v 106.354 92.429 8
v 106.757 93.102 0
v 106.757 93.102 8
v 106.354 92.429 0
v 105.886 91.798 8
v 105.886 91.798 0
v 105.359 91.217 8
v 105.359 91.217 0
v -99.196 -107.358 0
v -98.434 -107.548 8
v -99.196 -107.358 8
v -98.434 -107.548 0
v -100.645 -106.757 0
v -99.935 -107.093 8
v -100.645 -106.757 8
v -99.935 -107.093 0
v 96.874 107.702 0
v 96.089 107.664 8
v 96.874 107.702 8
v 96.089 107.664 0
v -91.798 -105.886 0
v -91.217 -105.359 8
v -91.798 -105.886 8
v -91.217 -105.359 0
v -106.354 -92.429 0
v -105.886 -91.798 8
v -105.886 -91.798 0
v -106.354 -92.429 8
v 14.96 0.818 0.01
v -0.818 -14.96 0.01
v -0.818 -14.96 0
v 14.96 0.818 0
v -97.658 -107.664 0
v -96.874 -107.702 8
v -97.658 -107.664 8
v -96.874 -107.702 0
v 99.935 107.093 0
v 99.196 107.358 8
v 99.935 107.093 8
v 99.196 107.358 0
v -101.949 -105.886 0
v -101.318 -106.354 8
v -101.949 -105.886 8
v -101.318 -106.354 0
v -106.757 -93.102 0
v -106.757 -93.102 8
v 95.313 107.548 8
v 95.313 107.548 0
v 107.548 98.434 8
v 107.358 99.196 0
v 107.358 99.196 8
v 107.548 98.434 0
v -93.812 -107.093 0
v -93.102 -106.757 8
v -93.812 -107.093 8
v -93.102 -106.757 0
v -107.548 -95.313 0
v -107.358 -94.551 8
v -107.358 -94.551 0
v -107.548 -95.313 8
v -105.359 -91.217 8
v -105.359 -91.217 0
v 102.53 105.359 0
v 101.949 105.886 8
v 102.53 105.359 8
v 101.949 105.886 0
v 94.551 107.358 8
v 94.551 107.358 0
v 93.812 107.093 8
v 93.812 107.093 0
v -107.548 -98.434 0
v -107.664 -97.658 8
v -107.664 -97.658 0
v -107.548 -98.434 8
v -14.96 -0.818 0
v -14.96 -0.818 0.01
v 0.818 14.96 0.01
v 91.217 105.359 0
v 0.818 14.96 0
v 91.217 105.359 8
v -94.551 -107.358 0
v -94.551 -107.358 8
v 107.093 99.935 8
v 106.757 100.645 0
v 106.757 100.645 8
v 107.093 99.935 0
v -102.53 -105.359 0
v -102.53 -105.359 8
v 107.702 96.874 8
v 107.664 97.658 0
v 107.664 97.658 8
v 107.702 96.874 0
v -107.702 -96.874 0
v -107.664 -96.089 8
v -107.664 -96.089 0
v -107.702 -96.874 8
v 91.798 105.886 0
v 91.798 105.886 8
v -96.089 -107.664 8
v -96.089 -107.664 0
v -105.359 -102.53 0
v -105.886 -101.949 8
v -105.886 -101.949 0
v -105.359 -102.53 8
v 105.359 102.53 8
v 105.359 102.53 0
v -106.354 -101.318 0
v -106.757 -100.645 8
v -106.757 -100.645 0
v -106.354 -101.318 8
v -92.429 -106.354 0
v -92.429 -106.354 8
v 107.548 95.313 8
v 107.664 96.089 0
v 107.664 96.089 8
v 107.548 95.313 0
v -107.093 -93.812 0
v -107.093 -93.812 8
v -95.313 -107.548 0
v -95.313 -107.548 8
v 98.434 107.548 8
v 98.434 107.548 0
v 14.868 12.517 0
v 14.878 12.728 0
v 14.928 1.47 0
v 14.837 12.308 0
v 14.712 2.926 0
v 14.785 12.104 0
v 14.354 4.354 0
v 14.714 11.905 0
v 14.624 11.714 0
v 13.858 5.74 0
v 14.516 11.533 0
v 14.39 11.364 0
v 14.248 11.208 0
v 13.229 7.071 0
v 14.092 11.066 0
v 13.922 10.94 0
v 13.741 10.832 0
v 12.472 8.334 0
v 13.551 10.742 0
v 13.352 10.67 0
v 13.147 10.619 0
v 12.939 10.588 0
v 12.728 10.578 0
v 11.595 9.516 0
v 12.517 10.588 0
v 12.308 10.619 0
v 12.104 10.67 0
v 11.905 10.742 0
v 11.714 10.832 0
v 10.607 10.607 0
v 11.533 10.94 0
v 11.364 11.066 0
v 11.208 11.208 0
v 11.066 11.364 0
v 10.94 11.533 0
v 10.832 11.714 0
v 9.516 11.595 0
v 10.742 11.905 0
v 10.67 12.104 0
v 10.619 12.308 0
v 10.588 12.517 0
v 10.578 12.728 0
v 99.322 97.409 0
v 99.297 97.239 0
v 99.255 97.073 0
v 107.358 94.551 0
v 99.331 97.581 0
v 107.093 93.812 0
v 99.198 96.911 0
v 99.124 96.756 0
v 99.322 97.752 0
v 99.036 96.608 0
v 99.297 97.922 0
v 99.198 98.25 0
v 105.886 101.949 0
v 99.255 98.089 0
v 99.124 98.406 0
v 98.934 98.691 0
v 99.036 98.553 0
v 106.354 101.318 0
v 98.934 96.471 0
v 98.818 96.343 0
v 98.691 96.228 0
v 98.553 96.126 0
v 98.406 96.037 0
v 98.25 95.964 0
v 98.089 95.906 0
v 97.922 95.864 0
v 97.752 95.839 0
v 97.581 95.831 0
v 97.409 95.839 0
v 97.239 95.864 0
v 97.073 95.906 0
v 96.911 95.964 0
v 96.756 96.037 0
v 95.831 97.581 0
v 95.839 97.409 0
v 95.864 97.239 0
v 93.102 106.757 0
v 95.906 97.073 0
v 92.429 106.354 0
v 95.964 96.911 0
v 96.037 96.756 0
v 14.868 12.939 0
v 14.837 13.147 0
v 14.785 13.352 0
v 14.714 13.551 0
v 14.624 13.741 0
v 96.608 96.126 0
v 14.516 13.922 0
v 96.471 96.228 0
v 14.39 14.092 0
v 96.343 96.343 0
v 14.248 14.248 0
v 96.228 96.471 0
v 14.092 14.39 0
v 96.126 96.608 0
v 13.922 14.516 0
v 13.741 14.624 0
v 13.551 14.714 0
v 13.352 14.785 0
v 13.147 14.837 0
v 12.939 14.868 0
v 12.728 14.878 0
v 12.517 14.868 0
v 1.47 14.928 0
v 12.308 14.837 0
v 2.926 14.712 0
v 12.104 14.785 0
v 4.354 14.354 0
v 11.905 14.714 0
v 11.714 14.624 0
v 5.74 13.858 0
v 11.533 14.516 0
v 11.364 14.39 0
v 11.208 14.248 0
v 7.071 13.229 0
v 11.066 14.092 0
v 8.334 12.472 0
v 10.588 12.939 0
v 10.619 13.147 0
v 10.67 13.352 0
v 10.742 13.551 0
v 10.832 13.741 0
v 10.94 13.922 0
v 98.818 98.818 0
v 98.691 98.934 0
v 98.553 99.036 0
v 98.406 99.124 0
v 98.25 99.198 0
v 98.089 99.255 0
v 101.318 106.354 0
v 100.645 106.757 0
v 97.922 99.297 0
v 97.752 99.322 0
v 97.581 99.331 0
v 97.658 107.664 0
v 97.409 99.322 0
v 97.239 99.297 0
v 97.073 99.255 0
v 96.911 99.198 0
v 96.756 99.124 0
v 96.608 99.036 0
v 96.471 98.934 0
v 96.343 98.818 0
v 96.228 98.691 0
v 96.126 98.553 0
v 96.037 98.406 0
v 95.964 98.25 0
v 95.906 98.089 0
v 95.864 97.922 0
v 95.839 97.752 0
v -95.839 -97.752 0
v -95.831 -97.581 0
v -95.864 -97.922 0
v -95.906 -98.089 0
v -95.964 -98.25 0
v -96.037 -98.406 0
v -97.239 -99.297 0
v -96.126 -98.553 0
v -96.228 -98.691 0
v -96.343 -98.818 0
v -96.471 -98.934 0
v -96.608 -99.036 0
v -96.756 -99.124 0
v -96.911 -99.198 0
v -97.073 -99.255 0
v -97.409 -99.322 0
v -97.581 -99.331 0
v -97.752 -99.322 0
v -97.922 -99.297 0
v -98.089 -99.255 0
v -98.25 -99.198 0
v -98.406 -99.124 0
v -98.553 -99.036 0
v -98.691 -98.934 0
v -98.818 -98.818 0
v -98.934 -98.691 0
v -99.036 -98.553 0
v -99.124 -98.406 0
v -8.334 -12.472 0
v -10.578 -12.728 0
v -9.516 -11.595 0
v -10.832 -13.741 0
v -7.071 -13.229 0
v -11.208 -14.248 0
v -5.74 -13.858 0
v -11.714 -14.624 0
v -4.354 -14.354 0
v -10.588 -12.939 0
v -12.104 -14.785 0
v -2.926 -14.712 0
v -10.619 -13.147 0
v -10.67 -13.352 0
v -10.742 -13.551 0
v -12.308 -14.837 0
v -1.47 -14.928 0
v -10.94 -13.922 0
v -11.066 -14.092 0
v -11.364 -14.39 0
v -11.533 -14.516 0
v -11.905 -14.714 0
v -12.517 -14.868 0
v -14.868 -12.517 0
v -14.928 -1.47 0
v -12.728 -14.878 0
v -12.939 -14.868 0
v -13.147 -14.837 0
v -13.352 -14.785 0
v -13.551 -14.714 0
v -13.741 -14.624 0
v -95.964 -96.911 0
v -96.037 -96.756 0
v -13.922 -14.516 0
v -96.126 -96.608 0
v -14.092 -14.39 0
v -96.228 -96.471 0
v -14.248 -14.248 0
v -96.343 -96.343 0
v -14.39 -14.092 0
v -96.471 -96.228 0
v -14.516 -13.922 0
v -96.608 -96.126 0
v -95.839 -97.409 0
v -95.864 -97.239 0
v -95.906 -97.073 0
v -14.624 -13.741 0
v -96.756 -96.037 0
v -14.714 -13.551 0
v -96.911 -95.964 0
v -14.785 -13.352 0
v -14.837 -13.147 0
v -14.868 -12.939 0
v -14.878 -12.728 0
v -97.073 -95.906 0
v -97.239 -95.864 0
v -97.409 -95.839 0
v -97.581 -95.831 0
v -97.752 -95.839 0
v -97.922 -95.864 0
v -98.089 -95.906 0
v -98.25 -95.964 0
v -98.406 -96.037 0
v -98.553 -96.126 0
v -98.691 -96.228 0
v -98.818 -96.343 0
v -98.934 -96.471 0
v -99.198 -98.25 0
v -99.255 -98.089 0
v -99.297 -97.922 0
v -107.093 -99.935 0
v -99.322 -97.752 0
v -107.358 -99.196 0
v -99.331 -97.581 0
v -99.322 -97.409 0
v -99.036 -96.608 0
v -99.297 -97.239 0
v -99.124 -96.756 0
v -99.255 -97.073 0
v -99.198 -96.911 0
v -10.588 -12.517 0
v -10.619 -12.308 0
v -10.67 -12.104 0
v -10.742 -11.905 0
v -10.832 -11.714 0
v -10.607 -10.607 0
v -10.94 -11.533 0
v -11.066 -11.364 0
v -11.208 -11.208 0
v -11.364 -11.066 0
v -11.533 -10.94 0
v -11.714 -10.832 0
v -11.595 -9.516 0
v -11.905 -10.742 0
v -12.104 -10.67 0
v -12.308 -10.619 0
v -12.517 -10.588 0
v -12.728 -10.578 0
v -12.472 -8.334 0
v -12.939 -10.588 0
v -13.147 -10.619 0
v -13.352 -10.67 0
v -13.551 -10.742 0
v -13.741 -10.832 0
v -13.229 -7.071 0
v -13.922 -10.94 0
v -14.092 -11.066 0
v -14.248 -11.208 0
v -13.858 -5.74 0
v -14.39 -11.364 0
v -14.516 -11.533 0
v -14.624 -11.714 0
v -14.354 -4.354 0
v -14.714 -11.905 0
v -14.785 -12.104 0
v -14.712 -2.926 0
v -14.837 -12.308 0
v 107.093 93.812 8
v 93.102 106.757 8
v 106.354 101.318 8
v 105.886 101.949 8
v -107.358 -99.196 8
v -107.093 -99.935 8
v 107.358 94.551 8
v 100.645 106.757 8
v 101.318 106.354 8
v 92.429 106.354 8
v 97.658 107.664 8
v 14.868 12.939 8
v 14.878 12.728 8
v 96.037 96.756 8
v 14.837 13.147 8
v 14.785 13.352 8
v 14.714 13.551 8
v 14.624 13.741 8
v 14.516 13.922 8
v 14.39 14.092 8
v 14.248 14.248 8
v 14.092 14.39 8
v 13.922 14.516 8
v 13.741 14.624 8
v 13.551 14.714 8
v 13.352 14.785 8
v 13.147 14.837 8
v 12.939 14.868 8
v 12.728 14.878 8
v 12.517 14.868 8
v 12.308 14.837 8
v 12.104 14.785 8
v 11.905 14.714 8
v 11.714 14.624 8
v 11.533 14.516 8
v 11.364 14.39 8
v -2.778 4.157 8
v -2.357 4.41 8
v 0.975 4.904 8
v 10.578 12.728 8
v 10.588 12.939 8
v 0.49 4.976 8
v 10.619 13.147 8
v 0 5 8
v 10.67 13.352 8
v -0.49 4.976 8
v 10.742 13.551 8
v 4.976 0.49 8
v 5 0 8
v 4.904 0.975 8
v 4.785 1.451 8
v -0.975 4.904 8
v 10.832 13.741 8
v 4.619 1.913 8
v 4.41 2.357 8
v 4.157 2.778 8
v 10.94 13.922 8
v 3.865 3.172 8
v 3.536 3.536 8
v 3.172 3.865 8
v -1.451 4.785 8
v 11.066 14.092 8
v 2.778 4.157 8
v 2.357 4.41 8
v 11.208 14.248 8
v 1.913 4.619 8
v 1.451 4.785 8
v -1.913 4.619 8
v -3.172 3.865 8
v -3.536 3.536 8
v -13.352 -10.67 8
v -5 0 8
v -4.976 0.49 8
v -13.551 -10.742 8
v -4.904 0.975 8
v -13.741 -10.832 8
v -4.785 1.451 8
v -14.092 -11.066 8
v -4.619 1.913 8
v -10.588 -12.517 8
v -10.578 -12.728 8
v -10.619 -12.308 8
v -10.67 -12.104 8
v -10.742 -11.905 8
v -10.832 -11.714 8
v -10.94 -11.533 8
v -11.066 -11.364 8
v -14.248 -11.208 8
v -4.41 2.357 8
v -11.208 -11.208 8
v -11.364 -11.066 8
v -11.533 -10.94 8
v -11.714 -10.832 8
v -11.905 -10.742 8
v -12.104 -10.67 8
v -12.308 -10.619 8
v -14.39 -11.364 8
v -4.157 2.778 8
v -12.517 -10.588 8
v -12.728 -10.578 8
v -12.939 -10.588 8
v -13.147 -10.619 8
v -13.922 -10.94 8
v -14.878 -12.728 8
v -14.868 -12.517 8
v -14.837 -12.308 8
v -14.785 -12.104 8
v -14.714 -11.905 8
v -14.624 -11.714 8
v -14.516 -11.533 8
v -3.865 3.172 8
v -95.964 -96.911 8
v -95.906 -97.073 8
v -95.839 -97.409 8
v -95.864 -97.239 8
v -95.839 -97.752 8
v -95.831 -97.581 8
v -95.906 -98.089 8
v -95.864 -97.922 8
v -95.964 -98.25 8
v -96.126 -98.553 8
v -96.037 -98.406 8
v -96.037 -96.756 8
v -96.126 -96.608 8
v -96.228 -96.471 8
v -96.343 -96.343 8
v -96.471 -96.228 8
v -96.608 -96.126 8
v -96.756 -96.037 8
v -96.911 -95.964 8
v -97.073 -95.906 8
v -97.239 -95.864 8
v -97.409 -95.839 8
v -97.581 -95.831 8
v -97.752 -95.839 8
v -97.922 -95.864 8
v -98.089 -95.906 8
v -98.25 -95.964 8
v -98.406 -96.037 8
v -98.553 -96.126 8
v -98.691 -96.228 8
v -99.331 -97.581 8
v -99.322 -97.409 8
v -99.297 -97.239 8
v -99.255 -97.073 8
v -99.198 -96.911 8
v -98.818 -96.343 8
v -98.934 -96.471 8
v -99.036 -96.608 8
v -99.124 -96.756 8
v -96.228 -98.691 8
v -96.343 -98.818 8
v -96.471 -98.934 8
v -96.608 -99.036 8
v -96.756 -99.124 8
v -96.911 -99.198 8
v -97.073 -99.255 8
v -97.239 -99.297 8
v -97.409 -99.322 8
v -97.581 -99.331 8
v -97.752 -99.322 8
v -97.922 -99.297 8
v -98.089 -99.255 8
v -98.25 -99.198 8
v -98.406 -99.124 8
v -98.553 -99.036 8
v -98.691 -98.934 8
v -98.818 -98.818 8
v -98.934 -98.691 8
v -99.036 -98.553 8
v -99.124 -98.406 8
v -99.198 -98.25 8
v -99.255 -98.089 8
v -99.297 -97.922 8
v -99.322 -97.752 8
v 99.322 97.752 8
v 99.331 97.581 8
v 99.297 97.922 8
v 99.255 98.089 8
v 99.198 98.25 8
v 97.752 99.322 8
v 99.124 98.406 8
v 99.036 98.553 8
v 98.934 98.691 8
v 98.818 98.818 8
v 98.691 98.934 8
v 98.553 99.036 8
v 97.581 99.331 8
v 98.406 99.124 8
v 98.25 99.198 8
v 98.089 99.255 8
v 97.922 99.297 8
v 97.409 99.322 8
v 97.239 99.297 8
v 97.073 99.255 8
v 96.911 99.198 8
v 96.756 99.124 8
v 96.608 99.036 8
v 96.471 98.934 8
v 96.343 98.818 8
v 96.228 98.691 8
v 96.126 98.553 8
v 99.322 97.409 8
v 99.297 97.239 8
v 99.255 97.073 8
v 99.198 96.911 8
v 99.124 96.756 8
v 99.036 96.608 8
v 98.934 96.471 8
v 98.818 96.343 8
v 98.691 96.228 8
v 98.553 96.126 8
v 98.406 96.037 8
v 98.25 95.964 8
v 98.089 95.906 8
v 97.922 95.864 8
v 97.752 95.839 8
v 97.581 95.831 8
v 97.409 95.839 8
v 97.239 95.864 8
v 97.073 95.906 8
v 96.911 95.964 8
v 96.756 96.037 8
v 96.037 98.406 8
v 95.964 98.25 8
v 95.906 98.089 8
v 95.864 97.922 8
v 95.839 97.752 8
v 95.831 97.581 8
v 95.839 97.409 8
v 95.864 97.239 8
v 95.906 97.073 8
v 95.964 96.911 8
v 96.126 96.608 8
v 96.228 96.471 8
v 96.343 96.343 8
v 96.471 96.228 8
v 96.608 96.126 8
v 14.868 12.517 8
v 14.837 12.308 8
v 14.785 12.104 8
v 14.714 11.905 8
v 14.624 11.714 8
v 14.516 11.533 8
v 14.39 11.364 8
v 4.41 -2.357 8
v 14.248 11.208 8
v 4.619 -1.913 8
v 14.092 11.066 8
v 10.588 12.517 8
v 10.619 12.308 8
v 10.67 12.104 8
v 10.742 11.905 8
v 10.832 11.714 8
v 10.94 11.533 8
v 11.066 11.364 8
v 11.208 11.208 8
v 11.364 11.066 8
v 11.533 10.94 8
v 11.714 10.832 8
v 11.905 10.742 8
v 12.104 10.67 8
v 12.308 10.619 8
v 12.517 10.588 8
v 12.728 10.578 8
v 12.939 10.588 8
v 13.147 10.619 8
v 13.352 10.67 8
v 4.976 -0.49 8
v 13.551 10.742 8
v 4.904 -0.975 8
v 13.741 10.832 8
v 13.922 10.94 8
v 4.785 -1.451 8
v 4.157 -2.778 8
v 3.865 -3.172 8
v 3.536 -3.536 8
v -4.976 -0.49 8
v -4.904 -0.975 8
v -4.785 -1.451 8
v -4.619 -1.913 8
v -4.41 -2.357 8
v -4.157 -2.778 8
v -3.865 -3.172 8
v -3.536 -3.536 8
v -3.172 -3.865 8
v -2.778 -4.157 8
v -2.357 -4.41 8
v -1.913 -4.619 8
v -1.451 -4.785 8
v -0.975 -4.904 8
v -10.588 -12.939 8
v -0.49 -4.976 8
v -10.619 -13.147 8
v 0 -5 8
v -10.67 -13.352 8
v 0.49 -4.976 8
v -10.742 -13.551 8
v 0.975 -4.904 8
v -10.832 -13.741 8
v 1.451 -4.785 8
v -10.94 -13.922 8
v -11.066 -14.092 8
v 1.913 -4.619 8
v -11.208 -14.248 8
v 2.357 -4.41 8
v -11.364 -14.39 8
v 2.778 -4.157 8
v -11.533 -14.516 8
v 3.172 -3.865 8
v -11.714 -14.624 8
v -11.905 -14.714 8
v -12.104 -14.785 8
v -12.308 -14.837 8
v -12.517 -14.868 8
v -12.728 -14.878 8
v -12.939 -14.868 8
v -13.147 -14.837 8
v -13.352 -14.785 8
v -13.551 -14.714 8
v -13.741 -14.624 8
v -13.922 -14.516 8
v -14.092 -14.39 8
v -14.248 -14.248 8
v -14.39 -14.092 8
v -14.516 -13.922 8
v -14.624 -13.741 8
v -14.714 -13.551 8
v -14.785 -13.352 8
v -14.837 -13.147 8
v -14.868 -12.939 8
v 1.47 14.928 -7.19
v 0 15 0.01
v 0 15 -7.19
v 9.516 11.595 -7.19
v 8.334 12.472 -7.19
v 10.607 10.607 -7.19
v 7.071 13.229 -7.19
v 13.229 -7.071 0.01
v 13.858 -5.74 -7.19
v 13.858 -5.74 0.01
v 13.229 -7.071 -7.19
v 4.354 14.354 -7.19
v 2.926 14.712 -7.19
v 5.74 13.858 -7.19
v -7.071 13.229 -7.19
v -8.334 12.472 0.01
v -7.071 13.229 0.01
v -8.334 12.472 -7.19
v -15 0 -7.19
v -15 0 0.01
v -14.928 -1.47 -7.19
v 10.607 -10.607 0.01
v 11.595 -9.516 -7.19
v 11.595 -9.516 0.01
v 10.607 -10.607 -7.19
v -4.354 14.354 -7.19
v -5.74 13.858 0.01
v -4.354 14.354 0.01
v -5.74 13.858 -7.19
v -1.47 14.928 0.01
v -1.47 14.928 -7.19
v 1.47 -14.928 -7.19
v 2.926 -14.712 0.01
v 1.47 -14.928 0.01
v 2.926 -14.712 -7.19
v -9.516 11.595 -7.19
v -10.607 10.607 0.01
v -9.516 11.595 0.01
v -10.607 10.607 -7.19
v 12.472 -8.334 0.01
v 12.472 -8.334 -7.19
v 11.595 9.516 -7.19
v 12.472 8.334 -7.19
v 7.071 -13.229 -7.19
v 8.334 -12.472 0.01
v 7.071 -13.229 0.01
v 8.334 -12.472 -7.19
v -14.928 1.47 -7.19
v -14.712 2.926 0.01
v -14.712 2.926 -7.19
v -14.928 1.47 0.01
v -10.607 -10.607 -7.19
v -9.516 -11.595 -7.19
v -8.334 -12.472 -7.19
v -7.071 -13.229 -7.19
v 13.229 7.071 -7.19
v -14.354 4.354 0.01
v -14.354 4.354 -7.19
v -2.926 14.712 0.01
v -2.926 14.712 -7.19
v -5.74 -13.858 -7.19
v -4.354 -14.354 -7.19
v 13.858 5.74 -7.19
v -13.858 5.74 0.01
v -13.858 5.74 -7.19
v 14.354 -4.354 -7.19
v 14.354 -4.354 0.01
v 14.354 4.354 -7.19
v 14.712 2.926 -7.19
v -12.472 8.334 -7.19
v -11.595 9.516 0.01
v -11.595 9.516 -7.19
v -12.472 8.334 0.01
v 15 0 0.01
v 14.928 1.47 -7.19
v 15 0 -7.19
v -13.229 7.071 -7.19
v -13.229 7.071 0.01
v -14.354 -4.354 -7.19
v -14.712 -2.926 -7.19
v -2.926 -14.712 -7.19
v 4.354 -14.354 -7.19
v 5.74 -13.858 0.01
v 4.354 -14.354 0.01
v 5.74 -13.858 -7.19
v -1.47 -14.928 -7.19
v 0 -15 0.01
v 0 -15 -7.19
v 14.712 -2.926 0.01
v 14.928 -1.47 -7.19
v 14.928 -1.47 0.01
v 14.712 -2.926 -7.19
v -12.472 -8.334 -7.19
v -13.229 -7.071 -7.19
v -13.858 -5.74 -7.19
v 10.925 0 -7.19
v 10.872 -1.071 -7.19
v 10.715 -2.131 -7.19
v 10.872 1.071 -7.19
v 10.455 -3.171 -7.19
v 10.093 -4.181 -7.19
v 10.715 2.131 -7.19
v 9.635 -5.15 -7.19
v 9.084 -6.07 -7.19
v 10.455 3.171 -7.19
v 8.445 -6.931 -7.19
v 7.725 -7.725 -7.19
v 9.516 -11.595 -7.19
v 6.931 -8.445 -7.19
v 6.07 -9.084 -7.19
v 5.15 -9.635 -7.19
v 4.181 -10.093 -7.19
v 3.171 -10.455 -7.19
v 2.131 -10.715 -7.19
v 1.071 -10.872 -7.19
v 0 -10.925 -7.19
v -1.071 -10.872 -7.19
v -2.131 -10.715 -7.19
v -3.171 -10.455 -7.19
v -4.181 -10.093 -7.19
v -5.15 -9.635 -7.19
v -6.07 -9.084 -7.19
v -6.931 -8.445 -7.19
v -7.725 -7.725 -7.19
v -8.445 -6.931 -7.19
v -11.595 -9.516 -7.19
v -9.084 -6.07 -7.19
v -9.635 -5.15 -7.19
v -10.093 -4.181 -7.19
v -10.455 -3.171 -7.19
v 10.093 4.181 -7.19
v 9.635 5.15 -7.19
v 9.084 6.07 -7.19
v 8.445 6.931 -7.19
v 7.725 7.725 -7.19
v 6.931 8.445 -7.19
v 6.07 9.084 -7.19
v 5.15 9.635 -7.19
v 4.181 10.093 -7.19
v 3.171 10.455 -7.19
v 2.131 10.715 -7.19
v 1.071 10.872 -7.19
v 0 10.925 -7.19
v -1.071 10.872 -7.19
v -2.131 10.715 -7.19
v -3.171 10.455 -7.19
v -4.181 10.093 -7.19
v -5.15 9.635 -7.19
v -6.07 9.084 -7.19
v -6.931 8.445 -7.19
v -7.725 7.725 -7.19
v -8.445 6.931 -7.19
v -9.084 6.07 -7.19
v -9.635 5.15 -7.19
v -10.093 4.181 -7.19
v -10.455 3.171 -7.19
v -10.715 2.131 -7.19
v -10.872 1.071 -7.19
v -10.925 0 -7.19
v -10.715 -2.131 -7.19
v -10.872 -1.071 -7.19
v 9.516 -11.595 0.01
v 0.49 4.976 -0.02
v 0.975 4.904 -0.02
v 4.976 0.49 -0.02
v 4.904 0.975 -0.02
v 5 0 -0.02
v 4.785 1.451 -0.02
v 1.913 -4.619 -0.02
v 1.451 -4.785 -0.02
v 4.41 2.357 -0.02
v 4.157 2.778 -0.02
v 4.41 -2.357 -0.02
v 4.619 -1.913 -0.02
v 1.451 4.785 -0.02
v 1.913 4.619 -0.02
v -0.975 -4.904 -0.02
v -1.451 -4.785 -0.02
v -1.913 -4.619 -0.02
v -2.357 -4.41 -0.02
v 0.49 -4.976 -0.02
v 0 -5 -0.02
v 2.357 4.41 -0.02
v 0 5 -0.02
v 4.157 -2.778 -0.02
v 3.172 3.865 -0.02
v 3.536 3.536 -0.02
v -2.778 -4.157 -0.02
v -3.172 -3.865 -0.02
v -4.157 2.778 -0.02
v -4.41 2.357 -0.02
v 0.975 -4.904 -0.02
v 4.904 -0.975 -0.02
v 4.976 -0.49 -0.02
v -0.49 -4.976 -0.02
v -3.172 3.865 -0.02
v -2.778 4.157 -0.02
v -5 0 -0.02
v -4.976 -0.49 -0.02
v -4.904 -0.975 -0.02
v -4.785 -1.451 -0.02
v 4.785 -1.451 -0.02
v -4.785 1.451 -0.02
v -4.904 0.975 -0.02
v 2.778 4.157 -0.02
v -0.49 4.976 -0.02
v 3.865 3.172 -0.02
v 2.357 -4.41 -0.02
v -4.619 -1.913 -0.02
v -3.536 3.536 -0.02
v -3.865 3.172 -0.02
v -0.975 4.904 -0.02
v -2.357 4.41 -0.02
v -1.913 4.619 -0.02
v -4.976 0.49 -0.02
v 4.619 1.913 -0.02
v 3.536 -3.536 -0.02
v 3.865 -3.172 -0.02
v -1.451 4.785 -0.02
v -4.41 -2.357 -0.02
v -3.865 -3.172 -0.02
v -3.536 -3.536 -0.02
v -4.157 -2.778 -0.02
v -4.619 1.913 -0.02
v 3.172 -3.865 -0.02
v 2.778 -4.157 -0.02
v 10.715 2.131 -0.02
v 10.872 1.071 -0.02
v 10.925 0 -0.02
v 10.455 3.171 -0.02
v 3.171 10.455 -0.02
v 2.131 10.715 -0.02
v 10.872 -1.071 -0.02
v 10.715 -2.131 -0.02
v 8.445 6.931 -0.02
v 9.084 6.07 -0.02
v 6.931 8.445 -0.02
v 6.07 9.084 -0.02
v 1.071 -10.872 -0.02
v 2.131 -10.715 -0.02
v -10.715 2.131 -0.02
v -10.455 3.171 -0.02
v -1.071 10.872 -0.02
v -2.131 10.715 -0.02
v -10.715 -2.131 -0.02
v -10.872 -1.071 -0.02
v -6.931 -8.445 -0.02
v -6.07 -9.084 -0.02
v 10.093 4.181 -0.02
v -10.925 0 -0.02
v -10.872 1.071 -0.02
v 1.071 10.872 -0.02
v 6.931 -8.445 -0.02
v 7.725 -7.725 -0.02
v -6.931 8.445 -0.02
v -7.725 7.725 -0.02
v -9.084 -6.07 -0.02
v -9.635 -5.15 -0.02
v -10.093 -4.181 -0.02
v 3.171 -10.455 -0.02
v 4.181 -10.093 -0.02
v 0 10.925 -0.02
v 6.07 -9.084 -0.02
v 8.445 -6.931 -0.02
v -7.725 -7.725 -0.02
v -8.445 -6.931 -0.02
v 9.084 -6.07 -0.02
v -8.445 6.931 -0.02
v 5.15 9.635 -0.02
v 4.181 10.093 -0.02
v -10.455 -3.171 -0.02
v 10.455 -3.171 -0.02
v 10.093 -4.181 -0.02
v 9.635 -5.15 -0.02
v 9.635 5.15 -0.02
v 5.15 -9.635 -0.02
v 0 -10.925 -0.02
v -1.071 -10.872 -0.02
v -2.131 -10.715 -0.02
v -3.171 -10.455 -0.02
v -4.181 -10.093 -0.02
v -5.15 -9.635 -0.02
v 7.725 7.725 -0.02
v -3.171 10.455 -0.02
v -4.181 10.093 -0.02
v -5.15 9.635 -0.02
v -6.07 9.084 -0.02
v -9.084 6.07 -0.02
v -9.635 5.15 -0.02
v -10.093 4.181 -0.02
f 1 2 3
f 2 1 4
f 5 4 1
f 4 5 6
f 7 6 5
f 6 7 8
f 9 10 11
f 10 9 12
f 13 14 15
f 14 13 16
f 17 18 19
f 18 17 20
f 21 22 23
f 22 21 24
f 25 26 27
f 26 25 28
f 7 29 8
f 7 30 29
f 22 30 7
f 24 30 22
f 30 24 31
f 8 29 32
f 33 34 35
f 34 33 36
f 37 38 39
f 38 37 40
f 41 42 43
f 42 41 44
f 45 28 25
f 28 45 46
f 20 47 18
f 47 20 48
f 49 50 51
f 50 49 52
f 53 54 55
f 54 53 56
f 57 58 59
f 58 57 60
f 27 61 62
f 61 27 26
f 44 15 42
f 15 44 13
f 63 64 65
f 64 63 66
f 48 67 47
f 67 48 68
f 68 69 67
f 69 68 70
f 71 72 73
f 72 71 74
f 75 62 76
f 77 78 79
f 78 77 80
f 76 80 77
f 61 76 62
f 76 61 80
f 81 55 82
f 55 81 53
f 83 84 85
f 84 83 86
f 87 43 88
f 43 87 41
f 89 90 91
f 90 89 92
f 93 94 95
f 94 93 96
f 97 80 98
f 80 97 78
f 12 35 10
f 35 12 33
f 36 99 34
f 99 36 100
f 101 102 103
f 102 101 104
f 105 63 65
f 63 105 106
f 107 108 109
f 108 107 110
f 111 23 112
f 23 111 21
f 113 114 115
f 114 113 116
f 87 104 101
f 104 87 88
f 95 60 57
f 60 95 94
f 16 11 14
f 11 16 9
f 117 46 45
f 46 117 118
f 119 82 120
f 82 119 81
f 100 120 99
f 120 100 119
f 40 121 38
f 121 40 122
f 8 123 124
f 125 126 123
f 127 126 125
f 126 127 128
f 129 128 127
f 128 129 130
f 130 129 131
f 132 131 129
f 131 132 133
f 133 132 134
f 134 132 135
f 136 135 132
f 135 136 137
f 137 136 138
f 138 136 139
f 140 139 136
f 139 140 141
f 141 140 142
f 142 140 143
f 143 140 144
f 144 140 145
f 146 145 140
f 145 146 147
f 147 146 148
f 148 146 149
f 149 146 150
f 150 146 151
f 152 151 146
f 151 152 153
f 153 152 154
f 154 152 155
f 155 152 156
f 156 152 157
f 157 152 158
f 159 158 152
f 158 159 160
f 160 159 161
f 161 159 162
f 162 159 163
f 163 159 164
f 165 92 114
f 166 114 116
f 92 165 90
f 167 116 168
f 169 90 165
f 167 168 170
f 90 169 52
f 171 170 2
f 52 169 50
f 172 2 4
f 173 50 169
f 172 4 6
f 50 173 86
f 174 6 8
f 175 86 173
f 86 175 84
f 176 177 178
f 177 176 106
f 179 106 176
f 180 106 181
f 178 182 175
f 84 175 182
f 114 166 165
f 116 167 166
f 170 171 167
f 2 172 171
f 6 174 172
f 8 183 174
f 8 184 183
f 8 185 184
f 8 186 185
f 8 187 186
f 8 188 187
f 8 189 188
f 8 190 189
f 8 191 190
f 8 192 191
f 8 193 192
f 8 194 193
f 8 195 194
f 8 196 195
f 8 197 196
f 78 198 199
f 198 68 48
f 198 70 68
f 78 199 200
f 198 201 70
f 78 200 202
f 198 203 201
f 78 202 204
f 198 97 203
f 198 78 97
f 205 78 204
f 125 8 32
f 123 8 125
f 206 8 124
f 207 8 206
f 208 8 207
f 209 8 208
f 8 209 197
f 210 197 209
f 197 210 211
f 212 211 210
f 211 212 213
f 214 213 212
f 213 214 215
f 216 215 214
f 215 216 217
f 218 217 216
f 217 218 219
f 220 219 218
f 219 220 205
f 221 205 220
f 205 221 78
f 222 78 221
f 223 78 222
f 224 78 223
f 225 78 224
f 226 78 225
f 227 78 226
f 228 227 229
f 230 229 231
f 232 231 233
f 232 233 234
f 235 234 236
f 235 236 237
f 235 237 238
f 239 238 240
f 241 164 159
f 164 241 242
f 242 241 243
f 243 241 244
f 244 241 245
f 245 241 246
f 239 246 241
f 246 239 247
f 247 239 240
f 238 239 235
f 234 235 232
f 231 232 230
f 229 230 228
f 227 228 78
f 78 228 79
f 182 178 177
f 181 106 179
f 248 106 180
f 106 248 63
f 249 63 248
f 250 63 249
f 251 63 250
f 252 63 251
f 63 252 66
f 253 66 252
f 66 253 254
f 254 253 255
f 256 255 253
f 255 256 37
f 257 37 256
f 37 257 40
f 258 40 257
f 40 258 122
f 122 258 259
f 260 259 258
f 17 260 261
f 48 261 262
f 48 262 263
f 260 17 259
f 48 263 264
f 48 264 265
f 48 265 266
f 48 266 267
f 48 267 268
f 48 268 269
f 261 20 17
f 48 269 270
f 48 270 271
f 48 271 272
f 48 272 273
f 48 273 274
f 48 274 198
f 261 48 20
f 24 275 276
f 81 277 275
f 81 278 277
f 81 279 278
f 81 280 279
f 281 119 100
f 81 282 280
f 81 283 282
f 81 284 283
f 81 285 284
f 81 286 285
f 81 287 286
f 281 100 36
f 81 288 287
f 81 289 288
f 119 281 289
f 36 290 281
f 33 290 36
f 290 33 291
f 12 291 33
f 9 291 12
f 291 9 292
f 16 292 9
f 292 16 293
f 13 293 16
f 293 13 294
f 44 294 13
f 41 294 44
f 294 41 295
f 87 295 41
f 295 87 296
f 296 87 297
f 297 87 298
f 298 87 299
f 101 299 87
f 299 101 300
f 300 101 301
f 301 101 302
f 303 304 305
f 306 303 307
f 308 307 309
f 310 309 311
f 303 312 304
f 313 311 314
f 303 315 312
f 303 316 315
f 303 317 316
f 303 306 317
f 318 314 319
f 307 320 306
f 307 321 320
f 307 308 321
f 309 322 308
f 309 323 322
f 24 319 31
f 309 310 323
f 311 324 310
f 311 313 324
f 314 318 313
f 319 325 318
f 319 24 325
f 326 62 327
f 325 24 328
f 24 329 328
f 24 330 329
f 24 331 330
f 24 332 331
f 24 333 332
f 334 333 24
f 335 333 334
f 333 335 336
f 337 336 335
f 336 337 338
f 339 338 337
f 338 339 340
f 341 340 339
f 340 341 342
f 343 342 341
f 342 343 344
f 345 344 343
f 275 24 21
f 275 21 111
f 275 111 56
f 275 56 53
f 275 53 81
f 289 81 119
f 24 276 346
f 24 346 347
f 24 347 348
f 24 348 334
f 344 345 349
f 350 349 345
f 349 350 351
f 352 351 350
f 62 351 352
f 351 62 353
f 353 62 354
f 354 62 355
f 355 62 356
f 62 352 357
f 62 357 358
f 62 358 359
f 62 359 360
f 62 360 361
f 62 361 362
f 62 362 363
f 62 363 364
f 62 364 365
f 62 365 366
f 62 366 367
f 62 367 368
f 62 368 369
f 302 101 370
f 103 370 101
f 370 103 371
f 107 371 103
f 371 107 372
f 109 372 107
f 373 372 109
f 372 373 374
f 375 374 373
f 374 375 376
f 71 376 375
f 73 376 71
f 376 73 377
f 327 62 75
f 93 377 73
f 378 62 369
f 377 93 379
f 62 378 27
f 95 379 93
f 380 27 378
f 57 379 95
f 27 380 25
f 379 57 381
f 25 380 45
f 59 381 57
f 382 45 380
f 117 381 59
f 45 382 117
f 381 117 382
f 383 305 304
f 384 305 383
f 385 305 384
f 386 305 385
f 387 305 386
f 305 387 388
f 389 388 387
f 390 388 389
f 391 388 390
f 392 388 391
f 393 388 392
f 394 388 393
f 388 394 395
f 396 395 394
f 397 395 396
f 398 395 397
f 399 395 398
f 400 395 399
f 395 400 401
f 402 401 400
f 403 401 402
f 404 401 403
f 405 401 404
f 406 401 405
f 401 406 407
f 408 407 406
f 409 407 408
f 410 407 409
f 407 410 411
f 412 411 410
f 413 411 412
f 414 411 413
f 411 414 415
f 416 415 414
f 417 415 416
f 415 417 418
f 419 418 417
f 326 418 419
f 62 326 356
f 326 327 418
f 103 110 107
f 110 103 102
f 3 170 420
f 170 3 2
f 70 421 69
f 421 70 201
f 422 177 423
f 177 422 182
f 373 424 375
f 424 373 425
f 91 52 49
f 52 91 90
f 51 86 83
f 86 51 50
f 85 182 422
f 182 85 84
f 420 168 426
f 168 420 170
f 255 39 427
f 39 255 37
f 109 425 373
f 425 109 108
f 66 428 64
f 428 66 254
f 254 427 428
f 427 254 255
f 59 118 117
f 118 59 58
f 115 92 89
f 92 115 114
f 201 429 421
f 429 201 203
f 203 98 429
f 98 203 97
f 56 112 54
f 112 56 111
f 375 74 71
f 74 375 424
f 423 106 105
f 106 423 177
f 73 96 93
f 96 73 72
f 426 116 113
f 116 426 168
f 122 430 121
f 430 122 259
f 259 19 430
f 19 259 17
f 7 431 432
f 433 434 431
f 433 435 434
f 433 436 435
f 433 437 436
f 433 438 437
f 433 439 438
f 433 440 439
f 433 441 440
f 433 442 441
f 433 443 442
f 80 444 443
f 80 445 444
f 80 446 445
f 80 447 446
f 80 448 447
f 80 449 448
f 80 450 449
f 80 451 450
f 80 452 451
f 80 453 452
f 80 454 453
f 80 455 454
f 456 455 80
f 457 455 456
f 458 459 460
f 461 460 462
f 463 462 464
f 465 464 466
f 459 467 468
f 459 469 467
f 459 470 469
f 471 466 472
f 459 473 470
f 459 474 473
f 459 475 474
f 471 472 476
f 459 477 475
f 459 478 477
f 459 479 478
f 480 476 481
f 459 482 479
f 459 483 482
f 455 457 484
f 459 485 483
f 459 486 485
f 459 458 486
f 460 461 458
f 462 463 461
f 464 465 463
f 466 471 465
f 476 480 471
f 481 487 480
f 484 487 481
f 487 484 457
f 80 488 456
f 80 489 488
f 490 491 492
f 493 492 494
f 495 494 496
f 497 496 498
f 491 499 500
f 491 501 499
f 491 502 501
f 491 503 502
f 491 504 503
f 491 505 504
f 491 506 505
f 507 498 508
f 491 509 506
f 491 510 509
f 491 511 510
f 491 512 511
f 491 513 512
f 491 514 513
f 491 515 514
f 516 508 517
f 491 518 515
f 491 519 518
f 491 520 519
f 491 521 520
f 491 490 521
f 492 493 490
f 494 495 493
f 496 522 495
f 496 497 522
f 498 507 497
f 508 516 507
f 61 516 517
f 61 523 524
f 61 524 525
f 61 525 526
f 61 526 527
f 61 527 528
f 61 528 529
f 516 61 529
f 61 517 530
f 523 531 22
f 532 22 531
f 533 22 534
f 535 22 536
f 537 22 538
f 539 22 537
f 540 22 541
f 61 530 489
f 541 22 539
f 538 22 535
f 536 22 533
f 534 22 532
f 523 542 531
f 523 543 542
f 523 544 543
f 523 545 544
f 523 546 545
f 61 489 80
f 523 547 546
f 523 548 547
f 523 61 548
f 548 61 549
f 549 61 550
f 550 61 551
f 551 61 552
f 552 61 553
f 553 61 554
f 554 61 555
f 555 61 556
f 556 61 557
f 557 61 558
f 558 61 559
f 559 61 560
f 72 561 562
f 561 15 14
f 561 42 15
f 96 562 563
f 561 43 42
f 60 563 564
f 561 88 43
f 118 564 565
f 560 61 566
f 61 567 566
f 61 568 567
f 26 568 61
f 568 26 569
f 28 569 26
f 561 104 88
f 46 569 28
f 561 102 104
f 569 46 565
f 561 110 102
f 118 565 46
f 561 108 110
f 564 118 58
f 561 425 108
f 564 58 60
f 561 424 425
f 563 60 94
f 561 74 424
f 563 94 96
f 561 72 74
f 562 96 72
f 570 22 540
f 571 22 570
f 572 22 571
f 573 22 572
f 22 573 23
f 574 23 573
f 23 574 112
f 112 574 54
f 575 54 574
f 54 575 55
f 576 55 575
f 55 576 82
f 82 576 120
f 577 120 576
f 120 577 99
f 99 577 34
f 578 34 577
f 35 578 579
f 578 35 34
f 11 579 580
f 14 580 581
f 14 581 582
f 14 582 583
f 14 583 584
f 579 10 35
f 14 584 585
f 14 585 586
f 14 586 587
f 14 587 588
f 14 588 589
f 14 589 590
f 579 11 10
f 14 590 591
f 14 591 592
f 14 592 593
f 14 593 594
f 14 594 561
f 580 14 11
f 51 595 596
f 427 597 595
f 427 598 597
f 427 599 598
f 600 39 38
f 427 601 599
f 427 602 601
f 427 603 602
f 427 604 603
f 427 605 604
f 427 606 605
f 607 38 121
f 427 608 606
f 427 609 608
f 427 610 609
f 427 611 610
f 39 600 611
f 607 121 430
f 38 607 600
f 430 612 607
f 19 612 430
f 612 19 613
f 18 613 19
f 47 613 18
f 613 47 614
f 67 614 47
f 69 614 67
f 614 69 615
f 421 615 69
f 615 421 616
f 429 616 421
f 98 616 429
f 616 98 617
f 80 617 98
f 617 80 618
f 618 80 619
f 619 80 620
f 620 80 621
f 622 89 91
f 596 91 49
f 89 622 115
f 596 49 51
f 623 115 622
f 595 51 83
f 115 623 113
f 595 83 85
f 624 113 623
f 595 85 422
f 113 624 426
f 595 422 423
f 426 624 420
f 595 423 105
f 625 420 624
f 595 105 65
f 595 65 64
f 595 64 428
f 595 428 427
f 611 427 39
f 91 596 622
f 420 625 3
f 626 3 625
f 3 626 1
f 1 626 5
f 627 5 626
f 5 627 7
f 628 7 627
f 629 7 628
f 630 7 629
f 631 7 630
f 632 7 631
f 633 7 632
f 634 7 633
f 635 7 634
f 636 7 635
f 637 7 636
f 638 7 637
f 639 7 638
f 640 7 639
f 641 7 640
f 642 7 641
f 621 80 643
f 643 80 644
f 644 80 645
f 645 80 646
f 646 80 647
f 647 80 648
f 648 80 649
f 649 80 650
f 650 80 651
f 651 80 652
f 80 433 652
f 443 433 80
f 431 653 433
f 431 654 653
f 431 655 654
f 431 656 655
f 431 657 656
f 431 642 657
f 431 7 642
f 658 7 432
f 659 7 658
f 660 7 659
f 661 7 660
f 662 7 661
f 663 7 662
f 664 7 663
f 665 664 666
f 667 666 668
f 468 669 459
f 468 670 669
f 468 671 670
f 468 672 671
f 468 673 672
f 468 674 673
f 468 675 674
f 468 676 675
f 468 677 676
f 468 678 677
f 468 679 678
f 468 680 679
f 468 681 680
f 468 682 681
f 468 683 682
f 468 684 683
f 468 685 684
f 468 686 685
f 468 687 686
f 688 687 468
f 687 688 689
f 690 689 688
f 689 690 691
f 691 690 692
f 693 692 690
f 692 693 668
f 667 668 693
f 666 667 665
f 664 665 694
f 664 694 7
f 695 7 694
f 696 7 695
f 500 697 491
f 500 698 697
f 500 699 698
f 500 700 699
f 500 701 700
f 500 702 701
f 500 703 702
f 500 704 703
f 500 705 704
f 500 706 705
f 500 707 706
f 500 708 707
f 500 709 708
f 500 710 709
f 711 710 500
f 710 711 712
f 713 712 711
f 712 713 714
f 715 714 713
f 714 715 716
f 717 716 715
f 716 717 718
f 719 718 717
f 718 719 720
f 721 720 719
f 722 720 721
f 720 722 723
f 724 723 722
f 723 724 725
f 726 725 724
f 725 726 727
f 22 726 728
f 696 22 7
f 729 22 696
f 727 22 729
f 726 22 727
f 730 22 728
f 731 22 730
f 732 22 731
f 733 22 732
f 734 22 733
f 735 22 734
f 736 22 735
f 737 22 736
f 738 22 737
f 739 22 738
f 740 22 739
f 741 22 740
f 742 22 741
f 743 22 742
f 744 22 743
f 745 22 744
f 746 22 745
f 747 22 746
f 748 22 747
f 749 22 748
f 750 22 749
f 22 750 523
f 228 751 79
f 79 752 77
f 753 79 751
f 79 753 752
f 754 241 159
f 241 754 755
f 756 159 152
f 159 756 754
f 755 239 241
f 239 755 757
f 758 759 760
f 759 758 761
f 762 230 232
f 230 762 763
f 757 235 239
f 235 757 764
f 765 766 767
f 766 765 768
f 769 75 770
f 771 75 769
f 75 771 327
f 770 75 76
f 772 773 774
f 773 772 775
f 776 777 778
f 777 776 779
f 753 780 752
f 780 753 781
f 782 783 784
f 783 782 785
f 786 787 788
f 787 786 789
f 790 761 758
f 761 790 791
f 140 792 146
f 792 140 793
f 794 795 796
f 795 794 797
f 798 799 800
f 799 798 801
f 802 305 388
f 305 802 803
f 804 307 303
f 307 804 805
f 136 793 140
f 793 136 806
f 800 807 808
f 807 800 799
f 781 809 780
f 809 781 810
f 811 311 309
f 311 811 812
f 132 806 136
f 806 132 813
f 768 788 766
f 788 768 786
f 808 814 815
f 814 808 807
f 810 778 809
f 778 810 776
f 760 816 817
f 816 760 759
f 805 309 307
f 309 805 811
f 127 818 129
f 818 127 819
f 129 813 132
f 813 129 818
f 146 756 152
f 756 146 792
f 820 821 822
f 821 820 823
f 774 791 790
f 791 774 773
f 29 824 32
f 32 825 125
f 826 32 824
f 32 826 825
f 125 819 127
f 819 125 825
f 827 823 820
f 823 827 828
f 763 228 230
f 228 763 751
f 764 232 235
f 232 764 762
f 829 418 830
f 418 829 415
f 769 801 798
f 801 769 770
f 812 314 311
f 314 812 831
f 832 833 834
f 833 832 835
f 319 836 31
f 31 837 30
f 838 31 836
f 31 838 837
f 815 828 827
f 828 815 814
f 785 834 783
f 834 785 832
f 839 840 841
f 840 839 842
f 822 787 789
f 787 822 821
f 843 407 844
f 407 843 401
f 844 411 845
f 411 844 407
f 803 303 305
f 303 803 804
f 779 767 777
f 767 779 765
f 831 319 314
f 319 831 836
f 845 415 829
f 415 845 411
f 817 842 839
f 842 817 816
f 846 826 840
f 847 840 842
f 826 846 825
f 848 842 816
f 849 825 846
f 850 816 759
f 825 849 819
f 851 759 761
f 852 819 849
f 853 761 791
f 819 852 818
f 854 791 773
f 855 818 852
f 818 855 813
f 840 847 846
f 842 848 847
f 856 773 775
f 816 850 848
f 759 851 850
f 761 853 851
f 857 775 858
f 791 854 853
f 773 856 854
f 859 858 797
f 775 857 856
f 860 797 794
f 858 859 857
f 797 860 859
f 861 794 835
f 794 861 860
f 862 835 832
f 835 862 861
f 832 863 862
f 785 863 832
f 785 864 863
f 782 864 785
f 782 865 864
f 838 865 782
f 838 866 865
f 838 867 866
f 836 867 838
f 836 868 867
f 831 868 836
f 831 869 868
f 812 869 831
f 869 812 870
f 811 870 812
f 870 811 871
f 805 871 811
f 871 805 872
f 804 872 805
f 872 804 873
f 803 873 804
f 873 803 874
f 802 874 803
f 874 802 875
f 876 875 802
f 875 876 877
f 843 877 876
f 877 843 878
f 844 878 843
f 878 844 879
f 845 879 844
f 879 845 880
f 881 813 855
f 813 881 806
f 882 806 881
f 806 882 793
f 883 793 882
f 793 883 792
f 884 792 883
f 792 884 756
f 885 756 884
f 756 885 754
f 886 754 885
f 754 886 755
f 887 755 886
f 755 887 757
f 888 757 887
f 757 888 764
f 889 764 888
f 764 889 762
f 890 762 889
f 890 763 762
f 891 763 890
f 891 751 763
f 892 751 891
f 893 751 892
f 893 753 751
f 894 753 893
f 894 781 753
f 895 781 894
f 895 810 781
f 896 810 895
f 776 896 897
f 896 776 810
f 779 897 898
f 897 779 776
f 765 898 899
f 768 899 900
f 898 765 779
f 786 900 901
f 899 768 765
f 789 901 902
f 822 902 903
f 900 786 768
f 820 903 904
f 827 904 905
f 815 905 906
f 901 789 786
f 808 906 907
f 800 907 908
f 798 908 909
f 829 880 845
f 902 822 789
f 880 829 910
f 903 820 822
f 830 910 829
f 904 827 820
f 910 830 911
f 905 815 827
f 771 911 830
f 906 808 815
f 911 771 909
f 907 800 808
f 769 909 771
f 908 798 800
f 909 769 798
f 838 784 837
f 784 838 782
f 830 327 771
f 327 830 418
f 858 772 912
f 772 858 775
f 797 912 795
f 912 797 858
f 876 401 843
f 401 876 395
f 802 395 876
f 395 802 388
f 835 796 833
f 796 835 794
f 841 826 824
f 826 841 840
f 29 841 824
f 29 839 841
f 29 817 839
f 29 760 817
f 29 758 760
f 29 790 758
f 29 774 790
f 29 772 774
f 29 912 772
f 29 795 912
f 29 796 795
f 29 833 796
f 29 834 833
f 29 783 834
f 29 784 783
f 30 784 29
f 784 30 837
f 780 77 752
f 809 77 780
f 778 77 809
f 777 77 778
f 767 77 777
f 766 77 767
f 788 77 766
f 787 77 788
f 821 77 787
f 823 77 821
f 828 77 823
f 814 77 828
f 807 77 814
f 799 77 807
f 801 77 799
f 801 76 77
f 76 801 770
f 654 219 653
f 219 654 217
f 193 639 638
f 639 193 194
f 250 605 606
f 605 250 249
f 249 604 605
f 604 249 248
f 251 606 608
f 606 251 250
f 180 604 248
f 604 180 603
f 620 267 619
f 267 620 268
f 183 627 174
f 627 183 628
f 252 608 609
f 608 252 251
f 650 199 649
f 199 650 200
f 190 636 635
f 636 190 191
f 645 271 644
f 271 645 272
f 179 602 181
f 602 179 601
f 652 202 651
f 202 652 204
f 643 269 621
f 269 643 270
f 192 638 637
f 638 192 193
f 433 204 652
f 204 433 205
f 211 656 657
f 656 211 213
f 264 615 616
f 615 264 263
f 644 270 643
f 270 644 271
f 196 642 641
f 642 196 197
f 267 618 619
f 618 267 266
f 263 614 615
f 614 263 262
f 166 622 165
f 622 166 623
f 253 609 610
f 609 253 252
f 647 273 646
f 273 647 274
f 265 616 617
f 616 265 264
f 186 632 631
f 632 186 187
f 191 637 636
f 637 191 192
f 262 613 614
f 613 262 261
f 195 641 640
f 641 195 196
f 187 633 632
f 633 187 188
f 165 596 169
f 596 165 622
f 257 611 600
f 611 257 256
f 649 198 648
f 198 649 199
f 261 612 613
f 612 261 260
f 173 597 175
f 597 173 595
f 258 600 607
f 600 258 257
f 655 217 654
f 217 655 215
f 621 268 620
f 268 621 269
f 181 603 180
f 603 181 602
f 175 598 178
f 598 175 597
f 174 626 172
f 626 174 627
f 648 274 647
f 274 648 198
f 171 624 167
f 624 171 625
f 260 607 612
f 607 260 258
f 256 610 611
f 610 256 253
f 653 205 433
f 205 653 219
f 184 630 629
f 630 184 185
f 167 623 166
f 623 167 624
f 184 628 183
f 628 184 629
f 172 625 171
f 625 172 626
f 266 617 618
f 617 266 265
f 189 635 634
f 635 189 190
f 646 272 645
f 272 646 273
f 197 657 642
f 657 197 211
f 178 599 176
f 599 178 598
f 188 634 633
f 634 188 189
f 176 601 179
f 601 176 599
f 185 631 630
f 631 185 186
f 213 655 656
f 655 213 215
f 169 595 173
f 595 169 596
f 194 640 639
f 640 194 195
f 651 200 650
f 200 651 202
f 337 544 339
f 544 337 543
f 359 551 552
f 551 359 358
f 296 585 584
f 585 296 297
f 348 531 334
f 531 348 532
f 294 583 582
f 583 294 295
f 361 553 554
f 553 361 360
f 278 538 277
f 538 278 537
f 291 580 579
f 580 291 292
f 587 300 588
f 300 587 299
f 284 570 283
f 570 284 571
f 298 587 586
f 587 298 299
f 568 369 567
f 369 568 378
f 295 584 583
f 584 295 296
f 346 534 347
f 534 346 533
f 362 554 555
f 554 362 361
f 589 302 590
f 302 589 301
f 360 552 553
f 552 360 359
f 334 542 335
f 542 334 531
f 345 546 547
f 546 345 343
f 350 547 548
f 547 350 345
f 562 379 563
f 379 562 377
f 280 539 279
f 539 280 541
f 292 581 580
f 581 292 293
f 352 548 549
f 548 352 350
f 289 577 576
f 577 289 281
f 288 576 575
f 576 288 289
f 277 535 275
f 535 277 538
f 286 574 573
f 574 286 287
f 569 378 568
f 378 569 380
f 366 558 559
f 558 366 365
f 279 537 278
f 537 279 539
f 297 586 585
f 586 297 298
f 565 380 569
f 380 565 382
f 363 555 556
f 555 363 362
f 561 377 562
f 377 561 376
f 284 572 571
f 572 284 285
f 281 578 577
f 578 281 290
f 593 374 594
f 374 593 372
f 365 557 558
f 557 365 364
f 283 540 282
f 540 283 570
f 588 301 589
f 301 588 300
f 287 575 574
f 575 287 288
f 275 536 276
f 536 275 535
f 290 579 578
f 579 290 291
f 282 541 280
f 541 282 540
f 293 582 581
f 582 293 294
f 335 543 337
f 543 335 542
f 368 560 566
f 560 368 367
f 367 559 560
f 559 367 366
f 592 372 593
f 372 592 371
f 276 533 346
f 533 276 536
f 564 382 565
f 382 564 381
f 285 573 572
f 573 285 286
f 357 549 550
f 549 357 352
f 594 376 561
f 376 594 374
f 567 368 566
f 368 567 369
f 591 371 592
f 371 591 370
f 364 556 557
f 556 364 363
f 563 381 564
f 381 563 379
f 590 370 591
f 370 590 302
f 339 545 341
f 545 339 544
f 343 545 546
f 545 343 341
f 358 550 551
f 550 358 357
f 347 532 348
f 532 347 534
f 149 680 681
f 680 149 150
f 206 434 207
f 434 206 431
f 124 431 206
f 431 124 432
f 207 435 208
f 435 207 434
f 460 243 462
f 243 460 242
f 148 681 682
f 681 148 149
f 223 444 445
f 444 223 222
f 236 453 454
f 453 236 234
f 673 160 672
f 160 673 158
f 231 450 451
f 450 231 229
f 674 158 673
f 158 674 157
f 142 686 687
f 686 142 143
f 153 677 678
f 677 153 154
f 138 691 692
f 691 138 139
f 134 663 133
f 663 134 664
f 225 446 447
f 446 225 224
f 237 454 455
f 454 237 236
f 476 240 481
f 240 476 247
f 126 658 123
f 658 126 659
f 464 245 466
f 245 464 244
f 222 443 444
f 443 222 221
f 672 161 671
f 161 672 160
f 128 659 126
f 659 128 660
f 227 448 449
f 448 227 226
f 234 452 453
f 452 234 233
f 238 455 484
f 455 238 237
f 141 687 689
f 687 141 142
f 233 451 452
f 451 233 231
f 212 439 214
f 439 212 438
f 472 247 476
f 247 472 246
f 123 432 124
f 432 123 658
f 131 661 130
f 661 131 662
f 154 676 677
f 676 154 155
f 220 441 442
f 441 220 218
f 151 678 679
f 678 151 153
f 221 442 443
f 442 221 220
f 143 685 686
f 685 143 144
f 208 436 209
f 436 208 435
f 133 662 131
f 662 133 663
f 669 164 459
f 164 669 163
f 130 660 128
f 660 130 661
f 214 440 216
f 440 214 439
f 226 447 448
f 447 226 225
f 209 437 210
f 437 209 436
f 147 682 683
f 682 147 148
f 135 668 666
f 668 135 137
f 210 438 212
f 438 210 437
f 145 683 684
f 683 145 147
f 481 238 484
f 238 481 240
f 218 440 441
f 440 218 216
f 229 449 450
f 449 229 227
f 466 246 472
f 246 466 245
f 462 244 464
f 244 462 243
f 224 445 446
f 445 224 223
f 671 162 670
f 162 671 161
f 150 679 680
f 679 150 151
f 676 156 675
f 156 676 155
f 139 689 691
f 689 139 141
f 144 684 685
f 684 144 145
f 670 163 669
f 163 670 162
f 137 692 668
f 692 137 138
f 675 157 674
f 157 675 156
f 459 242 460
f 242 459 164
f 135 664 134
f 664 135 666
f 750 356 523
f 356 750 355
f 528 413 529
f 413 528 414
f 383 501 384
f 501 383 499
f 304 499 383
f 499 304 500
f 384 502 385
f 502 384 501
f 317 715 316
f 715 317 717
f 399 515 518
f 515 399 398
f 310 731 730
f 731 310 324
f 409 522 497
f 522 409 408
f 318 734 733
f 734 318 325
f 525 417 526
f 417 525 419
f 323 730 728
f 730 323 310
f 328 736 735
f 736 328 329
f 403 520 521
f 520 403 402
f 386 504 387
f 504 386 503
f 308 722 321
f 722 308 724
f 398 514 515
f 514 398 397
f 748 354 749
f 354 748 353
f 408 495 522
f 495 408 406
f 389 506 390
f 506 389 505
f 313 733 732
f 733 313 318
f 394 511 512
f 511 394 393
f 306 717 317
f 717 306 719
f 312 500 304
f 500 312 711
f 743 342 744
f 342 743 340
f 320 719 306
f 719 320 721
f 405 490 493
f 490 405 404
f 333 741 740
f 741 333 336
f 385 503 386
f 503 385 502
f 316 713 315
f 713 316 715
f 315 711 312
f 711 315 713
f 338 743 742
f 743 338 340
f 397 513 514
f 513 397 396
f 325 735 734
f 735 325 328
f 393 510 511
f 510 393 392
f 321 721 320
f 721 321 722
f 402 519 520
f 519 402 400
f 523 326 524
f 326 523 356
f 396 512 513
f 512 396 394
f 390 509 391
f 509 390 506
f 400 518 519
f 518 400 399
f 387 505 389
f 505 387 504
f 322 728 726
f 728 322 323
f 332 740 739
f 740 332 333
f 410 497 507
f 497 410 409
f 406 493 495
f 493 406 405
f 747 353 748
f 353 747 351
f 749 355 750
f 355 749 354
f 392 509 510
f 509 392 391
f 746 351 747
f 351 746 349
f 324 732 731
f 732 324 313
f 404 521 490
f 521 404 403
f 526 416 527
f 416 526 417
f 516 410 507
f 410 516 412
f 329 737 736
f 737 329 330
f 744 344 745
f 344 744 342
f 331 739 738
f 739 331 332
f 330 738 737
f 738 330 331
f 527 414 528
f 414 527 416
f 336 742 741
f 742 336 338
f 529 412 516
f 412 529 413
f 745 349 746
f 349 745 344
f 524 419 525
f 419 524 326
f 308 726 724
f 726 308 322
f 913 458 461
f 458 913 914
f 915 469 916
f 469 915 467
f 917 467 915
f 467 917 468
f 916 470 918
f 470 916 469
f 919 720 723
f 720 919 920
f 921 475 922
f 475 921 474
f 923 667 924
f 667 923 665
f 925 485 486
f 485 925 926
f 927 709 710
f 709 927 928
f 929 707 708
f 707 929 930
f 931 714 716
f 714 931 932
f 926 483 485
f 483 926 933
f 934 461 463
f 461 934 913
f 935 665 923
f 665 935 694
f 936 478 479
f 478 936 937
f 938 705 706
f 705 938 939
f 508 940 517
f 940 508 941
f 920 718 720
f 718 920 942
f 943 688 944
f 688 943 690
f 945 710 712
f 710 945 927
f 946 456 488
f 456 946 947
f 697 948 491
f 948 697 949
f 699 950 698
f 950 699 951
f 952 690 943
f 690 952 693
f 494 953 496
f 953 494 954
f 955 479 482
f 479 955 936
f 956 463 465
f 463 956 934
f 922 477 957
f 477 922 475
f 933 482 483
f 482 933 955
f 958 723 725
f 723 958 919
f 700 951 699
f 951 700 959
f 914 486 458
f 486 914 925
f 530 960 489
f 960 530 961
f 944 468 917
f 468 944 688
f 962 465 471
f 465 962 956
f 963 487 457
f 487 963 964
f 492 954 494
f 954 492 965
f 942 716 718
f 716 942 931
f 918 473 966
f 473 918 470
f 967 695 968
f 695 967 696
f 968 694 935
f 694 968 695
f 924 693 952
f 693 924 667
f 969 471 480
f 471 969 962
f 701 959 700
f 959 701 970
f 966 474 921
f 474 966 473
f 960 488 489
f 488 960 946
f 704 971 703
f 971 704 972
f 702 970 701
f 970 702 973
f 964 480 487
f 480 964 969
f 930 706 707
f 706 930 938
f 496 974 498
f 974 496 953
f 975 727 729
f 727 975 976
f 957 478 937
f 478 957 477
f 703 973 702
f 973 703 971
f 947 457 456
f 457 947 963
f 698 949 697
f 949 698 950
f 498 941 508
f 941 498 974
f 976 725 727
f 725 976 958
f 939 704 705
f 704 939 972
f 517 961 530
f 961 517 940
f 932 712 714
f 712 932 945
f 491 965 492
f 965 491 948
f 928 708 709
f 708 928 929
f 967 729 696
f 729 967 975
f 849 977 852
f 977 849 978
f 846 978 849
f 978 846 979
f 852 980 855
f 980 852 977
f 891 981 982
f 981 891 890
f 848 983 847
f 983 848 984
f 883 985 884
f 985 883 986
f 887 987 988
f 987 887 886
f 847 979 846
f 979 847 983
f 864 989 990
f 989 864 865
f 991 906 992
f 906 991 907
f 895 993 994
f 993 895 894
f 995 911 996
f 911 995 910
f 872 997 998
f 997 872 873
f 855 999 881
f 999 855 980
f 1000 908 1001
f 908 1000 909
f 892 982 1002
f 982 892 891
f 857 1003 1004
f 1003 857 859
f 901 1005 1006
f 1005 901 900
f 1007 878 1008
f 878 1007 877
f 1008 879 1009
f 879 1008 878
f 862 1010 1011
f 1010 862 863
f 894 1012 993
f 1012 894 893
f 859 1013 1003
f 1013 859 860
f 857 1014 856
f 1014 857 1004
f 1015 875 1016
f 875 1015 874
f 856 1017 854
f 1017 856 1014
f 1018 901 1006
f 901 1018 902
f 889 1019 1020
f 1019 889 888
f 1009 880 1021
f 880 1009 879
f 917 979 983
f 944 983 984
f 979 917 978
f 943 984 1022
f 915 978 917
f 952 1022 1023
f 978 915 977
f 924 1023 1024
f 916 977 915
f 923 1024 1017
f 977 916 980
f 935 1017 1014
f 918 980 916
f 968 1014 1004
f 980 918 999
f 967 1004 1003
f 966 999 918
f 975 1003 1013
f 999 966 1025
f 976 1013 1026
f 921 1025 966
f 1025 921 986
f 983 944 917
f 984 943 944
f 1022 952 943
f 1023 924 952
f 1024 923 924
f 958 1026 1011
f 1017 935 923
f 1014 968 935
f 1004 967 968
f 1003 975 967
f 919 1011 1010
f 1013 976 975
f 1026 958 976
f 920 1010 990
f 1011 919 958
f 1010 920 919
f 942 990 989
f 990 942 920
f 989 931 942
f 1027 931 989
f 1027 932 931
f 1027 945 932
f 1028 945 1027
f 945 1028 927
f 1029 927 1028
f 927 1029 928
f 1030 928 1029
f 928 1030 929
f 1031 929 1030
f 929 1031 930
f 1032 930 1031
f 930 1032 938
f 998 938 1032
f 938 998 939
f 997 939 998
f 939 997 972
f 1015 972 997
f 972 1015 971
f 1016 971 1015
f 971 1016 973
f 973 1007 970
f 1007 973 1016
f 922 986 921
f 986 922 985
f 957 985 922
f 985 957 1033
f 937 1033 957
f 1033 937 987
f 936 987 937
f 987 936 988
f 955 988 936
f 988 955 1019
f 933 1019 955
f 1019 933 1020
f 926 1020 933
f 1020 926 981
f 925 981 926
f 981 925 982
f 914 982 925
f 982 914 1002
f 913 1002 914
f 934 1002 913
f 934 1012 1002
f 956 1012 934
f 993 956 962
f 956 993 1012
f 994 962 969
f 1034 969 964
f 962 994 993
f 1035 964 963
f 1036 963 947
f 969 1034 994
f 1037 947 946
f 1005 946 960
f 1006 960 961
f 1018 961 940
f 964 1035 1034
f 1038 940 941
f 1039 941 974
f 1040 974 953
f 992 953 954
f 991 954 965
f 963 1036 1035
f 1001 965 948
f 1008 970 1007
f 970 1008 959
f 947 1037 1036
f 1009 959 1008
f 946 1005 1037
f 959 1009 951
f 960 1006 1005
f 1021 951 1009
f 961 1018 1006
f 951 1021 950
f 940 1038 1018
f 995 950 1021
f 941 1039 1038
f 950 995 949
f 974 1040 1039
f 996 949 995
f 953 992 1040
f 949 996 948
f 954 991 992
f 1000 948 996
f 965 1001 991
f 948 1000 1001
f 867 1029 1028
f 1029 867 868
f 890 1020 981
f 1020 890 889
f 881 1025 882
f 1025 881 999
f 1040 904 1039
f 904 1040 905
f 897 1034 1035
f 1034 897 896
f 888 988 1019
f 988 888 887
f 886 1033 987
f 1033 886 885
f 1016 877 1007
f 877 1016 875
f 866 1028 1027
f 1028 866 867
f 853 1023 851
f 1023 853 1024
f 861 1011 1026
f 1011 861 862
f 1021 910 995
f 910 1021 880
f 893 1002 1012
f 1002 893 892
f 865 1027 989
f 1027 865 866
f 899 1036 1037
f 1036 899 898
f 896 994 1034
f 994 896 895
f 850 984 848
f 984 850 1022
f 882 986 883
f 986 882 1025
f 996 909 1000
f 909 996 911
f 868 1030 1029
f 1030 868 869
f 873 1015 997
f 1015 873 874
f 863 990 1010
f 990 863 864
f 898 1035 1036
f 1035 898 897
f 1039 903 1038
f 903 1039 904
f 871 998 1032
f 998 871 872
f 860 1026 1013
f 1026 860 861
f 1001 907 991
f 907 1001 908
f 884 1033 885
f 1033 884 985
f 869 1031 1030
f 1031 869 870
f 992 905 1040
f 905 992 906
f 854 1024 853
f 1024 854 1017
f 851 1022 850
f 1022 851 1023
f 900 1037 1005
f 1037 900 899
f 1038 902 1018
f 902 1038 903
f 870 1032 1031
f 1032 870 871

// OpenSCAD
// Gen-DI — front BEARING BRIDGE (bar endbell, 2026-10-10): a 608 boss on a 20 mm wide bar that spans the
// two frame rods at 45 deg and 45+180 deg (R = flange_bolt_r). The front bridge uses the rods at 45/225 deg, the rear
// bridge the rods at 135/315 deg, so the two bridges cross at 90 deg and the stator is held at 4 points.
// A bar instead of a full disc is what lets this big-ring kit fit ONE 410 mm plate. Print flat face DOWN (boss up, no supports).
// Brace holes (temporary M4 jack rods, R = brace_r) sit on the bar axis.
include <parameters.scad>;
$fn = 64;
bar_w = 20;
bar_len = 2 * (flange_bolt_r + 9);
module bar_2d() { offset(r=8) offset(delta=-8) square([bar_len, bar_w], center=true); }
difference() {
    rotate([0, 0, 45]) union() {
        linear_extrude(endbell_thick) bar_2d();
        translate([0, 0, -bearing_h + 0.01]) cylinder(d=30, h=bearing_h);
    }
    translate([0, 0, -bearing_h - 0.1]) cylinder(d=endbell_shaft_clear, h=50);
    translate([0, 0, -bearing_h - 0.02]) cylinder(d=bearing_d, h=bearing_h);
    for (s = [0, 180]) rotate([0, 0, 45 + s]) translate([flange_bolt_r, 0, -20]) cylinder(d=m3_clear, h=60);
    for (a = brace_angles) translate([brace_r*cos(a), brace_r*sin(a), -20]) cylinder(d=brace_d, h=50);
}
